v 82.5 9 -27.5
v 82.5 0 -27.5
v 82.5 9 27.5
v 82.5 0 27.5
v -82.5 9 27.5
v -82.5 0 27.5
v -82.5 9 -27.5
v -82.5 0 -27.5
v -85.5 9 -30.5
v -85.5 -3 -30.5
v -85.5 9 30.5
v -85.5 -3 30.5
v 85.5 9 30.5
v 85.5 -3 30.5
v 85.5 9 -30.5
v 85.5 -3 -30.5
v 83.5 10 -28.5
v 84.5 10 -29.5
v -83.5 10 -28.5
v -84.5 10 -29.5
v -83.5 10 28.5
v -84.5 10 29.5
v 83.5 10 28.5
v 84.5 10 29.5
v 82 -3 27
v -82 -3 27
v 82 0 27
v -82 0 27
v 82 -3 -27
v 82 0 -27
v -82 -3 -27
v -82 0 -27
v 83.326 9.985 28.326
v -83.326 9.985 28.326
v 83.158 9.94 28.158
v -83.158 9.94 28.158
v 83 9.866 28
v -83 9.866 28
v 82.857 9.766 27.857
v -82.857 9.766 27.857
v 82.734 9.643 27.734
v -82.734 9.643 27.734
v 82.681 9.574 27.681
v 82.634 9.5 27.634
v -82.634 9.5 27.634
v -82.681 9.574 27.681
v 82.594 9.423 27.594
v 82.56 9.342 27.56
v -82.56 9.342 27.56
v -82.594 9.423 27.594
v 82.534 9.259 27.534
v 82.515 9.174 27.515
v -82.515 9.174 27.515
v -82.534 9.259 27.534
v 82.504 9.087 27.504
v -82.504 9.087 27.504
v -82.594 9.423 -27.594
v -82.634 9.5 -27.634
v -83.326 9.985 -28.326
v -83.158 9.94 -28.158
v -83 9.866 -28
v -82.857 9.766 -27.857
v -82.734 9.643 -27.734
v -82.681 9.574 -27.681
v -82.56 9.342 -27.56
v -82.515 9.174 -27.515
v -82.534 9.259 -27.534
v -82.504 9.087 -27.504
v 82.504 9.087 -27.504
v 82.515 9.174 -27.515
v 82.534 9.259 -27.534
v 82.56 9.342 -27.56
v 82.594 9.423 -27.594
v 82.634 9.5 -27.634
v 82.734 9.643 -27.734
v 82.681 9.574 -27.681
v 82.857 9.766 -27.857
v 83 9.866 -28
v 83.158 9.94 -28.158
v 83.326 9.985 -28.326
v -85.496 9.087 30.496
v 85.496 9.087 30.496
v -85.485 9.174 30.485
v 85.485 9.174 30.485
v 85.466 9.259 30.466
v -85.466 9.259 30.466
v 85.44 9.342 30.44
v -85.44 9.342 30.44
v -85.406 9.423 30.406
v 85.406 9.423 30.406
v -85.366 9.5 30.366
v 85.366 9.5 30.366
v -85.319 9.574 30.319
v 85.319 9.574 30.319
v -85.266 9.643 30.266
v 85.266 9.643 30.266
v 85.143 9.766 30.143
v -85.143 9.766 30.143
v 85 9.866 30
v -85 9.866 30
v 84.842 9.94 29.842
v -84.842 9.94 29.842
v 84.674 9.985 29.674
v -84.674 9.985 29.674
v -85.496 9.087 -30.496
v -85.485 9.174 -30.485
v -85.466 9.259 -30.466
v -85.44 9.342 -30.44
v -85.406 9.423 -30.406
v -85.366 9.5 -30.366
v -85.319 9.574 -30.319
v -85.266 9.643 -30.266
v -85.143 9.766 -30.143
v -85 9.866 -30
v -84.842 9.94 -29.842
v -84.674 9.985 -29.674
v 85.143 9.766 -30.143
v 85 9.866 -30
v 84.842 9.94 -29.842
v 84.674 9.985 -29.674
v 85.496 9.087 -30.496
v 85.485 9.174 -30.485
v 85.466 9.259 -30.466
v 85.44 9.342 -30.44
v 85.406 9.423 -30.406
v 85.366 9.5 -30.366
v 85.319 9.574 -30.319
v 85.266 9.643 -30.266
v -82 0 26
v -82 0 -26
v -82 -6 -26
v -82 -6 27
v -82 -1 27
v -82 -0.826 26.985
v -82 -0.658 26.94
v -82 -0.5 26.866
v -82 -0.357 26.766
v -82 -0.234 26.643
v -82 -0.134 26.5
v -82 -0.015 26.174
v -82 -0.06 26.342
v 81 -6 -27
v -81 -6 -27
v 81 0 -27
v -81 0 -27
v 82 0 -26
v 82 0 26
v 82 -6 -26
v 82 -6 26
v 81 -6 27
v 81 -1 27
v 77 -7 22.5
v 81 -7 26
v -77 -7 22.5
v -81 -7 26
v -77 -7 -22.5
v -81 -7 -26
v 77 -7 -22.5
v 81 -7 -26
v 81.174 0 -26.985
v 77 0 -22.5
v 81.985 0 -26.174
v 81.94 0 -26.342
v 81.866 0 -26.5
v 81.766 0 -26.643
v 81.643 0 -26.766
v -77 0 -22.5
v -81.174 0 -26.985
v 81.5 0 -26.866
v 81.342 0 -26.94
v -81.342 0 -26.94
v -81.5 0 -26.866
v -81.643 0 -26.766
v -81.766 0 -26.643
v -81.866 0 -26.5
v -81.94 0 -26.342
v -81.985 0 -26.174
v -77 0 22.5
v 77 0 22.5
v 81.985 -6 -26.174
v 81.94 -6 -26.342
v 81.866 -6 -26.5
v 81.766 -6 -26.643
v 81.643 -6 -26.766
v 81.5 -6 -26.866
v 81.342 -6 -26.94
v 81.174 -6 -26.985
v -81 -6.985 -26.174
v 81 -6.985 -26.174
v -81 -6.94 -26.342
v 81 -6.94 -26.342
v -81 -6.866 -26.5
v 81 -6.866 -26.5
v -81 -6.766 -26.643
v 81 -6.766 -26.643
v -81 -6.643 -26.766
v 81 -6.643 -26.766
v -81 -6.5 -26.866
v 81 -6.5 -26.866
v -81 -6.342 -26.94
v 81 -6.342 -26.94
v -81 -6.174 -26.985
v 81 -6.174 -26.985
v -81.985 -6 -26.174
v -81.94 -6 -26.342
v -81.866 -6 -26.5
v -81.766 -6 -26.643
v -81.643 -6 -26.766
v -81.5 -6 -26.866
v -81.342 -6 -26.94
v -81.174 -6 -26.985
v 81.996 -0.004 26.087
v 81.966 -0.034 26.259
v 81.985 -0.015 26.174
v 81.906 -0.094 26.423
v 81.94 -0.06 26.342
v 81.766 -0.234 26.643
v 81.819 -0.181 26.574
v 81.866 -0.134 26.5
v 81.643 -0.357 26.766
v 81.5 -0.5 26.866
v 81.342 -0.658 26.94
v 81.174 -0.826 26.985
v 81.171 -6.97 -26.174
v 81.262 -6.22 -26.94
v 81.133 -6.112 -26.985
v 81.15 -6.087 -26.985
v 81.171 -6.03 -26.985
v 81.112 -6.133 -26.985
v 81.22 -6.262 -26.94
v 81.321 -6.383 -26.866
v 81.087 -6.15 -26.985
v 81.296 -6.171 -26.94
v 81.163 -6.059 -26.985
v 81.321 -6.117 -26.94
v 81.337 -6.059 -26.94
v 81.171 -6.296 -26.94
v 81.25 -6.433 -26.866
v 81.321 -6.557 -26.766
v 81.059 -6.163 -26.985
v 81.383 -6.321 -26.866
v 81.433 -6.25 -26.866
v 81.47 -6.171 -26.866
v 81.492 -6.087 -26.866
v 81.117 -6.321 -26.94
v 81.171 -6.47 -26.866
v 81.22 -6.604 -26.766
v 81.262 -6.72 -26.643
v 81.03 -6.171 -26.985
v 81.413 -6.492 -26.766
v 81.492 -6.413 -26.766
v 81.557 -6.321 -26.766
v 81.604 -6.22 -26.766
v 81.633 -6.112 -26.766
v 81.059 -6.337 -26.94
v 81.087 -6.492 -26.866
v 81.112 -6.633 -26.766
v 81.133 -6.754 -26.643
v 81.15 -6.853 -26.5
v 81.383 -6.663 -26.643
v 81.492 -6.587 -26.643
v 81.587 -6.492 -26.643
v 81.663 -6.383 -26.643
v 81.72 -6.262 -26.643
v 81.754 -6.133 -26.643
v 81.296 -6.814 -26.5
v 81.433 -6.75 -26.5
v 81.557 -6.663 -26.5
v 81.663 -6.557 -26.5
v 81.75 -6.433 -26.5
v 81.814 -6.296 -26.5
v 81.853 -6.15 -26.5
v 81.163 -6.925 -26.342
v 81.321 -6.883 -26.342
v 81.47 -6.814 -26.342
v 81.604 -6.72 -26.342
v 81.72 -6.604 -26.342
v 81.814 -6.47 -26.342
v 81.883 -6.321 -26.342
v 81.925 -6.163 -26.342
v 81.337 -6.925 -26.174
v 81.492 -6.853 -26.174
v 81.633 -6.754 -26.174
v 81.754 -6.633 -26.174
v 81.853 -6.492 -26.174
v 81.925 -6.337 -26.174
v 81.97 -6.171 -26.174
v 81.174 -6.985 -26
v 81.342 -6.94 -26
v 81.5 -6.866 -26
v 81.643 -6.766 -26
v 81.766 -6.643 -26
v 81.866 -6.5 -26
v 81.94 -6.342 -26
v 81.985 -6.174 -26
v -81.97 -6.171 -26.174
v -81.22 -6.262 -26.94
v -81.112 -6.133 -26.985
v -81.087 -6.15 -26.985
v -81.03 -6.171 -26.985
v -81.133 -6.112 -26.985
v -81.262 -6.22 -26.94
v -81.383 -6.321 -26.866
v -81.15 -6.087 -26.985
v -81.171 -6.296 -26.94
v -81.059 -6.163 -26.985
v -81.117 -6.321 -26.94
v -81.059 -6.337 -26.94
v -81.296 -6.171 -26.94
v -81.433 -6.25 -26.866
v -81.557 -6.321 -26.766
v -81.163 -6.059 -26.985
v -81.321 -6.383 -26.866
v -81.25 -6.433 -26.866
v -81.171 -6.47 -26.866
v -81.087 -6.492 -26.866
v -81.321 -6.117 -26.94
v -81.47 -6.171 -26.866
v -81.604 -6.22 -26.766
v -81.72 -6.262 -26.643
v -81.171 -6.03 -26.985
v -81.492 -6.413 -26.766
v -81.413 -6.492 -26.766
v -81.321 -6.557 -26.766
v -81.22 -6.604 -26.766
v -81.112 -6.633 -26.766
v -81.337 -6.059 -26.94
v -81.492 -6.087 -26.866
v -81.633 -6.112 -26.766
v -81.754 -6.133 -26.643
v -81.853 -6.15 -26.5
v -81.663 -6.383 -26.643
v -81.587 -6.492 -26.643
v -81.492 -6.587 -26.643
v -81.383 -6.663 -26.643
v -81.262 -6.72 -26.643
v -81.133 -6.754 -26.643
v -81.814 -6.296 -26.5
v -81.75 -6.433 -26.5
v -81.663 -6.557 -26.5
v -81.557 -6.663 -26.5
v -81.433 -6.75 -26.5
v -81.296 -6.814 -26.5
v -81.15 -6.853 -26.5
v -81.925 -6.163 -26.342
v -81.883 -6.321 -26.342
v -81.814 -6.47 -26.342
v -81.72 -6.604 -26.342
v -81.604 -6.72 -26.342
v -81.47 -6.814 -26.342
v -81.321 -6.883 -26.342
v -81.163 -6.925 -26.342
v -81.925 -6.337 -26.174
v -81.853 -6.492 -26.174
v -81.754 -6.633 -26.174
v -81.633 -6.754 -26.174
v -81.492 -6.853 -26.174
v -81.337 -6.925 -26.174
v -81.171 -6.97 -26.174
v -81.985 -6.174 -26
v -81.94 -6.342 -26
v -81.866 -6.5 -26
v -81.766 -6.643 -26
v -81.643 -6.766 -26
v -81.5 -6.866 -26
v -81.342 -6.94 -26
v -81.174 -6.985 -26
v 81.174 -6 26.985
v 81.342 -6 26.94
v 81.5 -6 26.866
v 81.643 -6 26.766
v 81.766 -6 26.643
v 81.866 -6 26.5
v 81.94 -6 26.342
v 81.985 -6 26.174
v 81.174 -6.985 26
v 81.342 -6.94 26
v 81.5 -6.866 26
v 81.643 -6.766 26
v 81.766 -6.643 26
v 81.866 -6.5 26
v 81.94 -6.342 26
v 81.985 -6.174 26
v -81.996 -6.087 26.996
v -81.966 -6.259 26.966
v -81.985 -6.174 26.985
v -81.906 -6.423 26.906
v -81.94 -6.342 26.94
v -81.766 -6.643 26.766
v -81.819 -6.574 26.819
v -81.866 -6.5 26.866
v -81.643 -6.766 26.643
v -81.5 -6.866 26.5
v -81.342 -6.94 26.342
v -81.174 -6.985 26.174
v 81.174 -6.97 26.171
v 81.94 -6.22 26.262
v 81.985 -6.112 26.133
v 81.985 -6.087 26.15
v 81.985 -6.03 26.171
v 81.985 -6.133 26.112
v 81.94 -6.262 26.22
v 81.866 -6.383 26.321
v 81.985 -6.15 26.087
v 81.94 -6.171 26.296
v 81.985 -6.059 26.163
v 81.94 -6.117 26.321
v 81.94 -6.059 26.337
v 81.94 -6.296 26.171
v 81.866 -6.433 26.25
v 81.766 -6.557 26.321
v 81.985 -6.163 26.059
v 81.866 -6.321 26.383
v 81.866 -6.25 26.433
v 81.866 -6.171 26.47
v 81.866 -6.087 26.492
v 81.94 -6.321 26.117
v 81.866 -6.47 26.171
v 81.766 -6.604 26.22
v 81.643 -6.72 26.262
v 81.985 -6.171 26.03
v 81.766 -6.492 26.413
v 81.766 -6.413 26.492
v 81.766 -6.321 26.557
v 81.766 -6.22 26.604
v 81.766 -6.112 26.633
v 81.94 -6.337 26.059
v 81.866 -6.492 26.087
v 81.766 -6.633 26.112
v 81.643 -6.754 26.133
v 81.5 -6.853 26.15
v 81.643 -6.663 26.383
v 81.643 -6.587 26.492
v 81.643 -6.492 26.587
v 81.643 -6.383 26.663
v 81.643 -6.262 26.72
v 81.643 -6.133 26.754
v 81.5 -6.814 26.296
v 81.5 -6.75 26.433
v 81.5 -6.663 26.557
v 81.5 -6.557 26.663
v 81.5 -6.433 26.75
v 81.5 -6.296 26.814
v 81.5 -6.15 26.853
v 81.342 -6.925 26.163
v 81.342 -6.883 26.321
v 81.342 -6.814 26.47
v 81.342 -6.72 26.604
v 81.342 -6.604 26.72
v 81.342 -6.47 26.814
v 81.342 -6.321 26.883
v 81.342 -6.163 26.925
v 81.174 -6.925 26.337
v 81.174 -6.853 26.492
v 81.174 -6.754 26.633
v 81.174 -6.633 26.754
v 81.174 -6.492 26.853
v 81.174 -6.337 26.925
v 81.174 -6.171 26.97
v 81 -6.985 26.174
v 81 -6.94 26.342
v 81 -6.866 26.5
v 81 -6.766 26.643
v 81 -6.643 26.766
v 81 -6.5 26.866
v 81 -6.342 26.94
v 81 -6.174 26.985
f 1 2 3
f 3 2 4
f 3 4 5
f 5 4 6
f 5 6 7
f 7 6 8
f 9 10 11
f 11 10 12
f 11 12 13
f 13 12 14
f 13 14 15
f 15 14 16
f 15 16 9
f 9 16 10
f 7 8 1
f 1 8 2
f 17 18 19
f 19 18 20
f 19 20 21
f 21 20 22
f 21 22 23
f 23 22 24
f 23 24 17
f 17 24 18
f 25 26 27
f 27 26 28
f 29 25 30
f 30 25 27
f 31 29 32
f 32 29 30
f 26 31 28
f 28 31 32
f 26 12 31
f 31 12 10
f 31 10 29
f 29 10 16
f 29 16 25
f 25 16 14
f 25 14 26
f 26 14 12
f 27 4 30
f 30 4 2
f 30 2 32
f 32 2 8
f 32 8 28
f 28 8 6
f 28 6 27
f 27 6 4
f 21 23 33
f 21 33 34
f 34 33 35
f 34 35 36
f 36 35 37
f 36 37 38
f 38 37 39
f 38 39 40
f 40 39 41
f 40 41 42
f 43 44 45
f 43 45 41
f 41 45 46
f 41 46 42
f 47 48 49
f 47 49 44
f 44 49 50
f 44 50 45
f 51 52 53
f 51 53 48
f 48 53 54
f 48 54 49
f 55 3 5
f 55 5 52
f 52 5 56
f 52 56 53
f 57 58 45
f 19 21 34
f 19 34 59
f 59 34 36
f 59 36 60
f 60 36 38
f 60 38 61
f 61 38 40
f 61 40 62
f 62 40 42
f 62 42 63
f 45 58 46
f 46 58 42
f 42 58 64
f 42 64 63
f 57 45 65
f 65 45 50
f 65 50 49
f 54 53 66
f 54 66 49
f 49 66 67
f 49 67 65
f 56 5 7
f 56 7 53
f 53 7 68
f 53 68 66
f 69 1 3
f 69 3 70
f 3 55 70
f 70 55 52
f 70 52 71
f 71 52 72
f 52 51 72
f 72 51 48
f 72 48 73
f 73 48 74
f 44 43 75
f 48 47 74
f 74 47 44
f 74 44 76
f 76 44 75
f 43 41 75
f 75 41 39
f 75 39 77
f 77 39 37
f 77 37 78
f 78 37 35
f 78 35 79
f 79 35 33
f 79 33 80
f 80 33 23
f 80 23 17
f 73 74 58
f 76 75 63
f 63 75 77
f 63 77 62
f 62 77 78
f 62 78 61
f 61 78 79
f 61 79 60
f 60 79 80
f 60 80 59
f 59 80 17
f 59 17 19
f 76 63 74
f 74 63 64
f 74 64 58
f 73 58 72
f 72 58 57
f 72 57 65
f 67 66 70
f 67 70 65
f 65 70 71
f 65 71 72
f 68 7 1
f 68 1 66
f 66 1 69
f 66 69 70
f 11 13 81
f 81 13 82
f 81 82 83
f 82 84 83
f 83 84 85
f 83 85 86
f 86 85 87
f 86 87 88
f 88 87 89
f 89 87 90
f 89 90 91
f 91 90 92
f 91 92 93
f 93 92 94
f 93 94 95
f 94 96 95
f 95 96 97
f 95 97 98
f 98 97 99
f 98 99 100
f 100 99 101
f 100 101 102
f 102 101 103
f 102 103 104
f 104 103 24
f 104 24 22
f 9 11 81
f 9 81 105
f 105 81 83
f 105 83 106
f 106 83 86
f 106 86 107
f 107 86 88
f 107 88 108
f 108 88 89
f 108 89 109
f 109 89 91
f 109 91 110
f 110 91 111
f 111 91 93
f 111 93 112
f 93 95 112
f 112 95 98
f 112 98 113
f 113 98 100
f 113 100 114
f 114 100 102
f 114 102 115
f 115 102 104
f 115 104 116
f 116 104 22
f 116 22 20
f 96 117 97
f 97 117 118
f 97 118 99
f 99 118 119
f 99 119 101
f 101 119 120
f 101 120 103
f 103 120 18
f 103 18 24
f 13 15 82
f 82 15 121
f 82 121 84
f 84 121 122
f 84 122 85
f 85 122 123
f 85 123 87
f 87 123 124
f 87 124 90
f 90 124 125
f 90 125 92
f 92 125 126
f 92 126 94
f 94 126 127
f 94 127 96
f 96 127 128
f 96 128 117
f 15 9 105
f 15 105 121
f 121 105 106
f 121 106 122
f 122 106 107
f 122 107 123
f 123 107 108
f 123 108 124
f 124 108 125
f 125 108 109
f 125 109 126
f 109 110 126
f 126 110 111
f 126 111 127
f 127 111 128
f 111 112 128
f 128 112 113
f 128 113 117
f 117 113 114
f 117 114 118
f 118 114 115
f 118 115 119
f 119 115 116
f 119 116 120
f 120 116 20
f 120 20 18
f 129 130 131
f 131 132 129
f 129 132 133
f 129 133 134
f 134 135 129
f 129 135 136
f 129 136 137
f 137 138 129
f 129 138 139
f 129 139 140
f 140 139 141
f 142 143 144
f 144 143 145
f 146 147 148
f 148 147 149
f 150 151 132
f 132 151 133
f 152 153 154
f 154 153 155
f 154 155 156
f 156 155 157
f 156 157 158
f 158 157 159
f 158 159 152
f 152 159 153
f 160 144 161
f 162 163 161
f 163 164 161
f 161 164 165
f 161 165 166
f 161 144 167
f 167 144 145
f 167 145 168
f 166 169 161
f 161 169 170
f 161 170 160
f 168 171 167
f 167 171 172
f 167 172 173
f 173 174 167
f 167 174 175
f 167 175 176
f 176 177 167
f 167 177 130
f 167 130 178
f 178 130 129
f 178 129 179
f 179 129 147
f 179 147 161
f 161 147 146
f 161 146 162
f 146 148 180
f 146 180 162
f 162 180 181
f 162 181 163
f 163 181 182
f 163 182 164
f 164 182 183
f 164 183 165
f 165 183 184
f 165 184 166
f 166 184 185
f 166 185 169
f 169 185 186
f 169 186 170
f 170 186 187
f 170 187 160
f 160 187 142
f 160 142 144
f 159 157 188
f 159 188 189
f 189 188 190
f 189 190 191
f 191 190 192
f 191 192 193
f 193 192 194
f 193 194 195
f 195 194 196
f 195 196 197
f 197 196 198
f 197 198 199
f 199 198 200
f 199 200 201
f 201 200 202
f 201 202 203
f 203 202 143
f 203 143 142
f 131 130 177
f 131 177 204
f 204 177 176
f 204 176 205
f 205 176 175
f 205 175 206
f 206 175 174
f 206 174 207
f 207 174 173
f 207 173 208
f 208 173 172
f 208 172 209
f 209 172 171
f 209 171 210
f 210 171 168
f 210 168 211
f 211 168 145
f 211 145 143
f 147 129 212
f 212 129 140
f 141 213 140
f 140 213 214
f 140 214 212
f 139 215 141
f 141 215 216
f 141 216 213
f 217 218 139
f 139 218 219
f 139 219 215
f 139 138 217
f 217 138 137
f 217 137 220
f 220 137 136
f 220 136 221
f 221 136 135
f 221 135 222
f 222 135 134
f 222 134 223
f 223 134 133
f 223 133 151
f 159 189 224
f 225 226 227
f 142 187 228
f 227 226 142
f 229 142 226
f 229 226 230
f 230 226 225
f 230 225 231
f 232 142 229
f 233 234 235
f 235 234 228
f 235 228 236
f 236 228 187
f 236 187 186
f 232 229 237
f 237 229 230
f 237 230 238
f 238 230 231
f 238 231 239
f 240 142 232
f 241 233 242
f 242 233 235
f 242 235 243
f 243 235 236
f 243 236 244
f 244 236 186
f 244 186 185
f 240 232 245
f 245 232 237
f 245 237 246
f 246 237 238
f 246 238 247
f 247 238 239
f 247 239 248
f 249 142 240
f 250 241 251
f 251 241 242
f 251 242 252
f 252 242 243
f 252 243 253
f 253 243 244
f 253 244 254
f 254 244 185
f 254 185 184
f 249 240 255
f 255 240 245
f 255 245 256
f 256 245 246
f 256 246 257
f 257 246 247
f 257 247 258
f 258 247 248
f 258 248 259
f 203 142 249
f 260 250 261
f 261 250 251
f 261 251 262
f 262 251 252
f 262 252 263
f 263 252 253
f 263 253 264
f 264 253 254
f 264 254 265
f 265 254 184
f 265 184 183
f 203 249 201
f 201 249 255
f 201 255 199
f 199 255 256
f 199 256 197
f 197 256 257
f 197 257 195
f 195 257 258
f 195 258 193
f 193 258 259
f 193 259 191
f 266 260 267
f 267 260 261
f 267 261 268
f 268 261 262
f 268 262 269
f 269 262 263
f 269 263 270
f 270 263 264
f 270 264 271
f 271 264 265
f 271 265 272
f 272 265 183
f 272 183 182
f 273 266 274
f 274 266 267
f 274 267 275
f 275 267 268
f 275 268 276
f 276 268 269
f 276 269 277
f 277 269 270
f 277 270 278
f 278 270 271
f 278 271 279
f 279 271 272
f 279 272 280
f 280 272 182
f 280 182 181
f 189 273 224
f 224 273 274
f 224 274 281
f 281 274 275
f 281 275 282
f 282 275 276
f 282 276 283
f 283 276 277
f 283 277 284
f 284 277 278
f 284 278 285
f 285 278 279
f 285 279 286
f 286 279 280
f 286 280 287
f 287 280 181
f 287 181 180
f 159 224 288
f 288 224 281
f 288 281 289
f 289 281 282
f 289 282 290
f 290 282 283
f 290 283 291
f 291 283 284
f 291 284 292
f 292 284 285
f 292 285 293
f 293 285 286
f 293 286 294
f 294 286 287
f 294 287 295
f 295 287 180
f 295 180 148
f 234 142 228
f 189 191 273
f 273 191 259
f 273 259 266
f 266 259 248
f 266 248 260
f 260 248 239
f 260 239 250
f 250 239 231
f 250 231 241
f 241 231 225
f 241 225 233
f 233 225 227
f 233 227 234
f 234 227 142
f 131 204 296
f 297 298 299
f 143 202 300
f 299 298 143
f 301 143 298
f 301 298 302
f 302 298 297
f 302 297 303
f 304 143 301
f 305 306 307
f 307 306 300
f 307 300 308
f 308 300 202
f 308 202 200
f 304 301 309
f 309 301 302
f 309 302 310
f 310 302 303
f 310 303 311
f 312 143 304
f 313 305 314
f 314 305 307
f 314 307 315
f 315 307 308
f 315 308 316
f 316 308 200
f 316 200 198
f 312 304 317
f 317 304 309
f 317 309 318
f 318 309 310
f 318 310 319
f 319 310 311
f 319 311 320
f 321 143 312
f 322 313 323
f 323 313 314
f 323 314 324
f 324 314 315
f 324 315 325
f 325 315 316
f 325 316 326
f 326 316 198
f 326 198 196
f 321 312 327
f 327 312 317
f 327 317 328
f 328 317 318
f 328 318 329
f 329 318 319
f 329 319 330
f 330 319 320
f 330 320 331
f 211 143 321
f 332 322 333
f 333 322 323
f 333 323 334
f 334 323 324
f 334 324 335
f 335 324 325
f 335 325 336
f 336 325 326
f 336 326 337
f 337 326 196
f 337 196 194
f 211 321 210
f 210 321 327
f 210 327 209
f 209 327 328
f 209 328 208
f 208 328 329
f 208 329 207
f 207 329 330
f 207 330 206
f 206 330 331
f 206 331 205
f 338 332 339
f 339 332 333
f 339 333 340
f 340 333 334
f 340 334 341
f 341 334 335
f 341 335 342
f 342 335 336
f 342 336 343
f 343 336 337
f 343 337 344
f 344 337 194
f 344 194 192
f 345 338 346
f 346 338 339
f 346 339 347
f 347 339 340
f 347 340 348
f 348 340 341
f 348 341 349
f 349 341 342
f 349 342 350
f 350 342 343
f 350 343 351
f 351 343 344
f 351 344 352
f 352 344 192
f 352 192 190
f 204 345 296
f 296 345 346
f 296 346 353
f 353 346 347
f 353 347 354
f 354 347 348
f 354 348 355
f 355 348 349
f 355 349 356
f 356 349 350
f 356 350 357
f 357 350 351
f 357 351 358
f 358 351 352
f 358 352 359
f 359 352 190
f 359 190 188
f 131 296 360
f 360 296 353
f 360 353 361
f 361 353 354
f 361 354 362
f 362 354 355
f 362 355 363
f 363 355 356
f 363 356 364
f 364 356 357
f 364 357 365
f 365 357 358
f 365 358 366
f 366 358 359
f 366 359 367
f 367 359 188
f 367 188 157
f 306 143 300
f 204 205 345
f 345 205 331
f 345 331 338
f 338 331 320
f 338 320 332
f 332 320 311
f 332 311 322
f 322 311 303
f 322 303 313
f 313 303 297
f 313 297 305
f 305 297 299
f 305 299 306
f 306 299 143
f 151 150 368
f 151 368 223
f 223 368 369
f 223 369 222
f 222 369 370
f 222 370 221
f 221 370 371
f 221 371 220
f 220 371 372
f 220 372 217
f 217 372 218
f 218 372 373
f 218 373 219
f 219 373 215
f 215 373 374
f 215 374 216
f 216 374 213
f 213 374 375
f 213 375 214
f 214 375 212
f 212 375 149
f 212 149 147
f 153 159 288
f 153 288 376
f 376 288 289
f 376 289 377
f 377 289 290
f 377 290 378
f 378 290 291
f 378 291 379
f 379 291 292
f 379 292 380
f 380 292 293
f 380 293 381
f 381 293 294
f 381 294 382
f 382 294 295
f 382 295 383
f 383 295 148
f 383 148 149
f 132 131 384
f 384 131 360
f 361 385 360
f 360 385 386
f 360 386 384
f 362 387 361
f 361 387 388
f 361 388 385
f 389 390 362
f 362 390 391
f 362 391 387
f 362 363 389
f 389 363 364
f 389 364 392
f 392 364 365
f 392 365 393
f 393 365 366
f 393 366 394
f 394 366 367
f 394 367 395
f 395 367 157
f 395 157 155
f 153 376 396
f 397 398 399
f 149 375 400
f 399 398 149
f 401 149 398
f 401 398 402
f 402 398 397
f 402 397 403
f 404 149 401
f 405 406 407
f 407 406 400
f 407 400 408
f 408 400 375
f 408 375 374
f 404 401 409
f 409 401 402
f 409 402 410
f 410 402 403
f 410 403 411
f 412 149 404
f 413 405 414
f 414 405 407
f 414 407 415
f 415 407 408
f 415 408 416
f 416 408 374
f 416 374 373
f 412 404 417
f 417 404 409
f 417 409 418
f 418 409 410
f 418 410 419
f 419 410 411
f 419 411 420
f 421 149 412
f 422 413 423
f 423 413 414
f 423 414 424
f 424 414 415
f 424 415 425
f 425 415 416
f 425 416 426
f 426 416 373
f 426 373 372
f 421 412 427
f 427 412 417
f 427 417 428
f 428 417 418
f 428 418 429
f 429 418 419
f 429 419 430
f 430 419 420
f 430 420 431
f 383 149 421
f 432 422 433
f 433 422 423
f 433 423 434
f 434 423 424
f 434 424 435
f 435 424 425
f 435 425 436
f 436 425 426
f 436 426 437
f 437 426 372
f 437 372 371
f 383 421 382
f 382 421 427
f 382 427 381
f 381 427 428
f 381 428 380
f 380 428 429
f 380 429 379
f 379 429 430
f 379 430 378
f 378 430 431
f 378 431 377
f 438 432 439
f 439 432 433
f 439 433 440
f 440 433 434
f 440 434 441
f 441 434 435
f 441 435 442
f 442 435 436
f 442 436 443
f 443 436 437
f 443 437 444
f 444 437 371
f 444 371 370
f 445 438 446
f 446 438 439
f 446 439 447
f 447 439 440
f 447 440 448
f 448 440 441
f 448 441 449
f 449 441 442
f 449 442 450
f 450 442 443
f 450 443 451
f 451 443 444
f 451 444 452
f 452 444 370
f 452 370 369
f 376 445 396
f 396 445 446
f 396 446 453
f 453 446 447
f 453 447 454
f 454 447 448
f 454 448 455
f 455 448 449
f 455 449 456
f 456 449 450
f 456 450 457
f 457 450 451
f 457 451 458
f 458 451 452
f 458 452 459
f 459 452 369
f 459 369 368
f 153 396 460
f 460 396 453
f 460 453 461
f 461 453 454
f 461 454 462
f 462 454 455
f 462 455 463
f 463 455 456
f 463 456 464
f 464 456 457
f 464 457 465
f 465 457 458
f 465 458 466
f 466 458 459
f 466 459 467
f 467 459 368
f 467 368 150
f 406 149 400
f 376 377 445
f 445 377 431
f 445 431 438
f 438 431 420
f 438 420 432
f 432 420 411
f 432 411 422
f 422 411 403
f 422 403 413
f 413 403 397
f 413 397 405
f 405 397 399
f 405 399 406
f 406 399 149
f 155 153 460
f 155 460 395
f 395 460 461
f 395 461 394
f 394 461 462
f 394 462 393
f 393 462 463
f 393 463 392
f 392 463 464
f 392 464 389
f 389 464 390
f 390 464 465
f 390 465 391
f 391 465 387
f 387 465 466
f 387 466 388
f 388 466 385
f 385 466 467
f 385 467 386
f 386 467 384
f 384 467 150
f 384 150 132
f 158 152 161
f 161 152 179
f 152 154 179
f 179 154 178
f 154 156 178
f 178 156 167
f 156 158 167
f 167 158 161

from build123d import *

# Parameters (mm, degrees)
SKETCH1_W           = 171
SKETCH1_H           = 61
SKETCH1_W_2         = 165
SKETCH1_H_2         = 55
BOSS_EXTRUDE1_DEPTH = 10
SKETCH1_5_W         = 164
SKETCH1_5_H         = 54
BOSS_EXTRUDE2_DEPTH = 7
SKETCH1_6_W         = 171
SKETCH1_6_H         = 61
SKETCH1_6_W_2       = 164
SKETCH1_6_H_2       = 54
BOSS_EXTRUDE3_DEPTH = 3
FILLET1_R           = 1
FILLET2_R           = 1
SKETCH2_W           = 154
SKETCH2_H           = 45
CUT_EXTRUDE1_DEPTH  = 92.326337932


with BuildPart() as part:
    # Sketch1 → Boss-Extrude1 (new body)
    with BuildSketch(Plane(origin=(0, 0, 0), x_dir=(1, 0, 0), z_dir=(0, 1, 0))):
        Rectangle(SKETCH1_W, SKETCH1_H)
        Rectangle(SKETCH1_W_2, SKETCH1_H_2, mode=Mode.SUBTRACT)
    extrude(amount=BOSS_EXTRUDE1_DEPTH)

    # Sketch1<6> → Boss-Extrude3 (add)
    with BuildSketch(Plane(origin=(0, 0, 0), x_dir=(1, 0, 0), z_dir=(0, 1, 0))):
        Rectangle(SKETCH1_6_W, SKETCH1_6_H)
        Rectangle(SKETCH1_6_W_2, SKETCH1_6_H_2, mode=Mode.SUBTRACT)
    extrude(amount=-BOSS_EXTRUDE3_DEPTH)

    # Fillet2
    fillet2_edges = [part.edges().sort_by_distance(p)[0] for p in [
        (0, 10, -27.5),
        (-82.5, 10, 0),
        (0, 10, 27.5),
        (82.5, 10, 0),
        (0, 10, -30.5),
        (85.5, 10, 0),
        (0, 10, 30.5),
        (-85.5, 10, 0),
    ]]
    fillet(fillet2_edges, radius=FILLET2_R)


with BuildPart() as body_2:
    # Sketch1<5> → Boss-Extrude2 (new body)
    with BuildSketch(Plane(origin=(0, 0, 0), x_dir=(1, 0, 0), z_dir=(0, 1, 0))):
        Rectangle(SKETCH1_5_W, SKETCH1_5_H)
    extrude(amount=-BOSS_EXTRUDE2_DEPTH)

    # Fillet1
    fillet1_edges = [body_2.edges().sort_by_distance(p)[0] for p in [
        (0, -7, 27),
        (82, -7, 0),
        (0, -7, -27),
        (-82, -7, 0),
        (82, -3.5, -27),
        (82, -3.5, 27),
        (0, 0, 27),
        (-82, -3.5, -27),
    ]]
    fillet(fillet1_edges, radius=FILLET1_R)

    # Sketch2 → Cut-Extrude1 (cut, through all)
    with BuildSketch(Plane(origin=(0, 0, 0), x_dir=(1, 0, 0), z_dir=(0, 1, 0))):
        Rectangle(SKETCH2_W, SKETCH2_H)
    extrude(amount=-CUT_EXTRUDE1_DEPTH, mode=Mode.SUBTRACT)


solid = Compound([part.part, body_2.part])
